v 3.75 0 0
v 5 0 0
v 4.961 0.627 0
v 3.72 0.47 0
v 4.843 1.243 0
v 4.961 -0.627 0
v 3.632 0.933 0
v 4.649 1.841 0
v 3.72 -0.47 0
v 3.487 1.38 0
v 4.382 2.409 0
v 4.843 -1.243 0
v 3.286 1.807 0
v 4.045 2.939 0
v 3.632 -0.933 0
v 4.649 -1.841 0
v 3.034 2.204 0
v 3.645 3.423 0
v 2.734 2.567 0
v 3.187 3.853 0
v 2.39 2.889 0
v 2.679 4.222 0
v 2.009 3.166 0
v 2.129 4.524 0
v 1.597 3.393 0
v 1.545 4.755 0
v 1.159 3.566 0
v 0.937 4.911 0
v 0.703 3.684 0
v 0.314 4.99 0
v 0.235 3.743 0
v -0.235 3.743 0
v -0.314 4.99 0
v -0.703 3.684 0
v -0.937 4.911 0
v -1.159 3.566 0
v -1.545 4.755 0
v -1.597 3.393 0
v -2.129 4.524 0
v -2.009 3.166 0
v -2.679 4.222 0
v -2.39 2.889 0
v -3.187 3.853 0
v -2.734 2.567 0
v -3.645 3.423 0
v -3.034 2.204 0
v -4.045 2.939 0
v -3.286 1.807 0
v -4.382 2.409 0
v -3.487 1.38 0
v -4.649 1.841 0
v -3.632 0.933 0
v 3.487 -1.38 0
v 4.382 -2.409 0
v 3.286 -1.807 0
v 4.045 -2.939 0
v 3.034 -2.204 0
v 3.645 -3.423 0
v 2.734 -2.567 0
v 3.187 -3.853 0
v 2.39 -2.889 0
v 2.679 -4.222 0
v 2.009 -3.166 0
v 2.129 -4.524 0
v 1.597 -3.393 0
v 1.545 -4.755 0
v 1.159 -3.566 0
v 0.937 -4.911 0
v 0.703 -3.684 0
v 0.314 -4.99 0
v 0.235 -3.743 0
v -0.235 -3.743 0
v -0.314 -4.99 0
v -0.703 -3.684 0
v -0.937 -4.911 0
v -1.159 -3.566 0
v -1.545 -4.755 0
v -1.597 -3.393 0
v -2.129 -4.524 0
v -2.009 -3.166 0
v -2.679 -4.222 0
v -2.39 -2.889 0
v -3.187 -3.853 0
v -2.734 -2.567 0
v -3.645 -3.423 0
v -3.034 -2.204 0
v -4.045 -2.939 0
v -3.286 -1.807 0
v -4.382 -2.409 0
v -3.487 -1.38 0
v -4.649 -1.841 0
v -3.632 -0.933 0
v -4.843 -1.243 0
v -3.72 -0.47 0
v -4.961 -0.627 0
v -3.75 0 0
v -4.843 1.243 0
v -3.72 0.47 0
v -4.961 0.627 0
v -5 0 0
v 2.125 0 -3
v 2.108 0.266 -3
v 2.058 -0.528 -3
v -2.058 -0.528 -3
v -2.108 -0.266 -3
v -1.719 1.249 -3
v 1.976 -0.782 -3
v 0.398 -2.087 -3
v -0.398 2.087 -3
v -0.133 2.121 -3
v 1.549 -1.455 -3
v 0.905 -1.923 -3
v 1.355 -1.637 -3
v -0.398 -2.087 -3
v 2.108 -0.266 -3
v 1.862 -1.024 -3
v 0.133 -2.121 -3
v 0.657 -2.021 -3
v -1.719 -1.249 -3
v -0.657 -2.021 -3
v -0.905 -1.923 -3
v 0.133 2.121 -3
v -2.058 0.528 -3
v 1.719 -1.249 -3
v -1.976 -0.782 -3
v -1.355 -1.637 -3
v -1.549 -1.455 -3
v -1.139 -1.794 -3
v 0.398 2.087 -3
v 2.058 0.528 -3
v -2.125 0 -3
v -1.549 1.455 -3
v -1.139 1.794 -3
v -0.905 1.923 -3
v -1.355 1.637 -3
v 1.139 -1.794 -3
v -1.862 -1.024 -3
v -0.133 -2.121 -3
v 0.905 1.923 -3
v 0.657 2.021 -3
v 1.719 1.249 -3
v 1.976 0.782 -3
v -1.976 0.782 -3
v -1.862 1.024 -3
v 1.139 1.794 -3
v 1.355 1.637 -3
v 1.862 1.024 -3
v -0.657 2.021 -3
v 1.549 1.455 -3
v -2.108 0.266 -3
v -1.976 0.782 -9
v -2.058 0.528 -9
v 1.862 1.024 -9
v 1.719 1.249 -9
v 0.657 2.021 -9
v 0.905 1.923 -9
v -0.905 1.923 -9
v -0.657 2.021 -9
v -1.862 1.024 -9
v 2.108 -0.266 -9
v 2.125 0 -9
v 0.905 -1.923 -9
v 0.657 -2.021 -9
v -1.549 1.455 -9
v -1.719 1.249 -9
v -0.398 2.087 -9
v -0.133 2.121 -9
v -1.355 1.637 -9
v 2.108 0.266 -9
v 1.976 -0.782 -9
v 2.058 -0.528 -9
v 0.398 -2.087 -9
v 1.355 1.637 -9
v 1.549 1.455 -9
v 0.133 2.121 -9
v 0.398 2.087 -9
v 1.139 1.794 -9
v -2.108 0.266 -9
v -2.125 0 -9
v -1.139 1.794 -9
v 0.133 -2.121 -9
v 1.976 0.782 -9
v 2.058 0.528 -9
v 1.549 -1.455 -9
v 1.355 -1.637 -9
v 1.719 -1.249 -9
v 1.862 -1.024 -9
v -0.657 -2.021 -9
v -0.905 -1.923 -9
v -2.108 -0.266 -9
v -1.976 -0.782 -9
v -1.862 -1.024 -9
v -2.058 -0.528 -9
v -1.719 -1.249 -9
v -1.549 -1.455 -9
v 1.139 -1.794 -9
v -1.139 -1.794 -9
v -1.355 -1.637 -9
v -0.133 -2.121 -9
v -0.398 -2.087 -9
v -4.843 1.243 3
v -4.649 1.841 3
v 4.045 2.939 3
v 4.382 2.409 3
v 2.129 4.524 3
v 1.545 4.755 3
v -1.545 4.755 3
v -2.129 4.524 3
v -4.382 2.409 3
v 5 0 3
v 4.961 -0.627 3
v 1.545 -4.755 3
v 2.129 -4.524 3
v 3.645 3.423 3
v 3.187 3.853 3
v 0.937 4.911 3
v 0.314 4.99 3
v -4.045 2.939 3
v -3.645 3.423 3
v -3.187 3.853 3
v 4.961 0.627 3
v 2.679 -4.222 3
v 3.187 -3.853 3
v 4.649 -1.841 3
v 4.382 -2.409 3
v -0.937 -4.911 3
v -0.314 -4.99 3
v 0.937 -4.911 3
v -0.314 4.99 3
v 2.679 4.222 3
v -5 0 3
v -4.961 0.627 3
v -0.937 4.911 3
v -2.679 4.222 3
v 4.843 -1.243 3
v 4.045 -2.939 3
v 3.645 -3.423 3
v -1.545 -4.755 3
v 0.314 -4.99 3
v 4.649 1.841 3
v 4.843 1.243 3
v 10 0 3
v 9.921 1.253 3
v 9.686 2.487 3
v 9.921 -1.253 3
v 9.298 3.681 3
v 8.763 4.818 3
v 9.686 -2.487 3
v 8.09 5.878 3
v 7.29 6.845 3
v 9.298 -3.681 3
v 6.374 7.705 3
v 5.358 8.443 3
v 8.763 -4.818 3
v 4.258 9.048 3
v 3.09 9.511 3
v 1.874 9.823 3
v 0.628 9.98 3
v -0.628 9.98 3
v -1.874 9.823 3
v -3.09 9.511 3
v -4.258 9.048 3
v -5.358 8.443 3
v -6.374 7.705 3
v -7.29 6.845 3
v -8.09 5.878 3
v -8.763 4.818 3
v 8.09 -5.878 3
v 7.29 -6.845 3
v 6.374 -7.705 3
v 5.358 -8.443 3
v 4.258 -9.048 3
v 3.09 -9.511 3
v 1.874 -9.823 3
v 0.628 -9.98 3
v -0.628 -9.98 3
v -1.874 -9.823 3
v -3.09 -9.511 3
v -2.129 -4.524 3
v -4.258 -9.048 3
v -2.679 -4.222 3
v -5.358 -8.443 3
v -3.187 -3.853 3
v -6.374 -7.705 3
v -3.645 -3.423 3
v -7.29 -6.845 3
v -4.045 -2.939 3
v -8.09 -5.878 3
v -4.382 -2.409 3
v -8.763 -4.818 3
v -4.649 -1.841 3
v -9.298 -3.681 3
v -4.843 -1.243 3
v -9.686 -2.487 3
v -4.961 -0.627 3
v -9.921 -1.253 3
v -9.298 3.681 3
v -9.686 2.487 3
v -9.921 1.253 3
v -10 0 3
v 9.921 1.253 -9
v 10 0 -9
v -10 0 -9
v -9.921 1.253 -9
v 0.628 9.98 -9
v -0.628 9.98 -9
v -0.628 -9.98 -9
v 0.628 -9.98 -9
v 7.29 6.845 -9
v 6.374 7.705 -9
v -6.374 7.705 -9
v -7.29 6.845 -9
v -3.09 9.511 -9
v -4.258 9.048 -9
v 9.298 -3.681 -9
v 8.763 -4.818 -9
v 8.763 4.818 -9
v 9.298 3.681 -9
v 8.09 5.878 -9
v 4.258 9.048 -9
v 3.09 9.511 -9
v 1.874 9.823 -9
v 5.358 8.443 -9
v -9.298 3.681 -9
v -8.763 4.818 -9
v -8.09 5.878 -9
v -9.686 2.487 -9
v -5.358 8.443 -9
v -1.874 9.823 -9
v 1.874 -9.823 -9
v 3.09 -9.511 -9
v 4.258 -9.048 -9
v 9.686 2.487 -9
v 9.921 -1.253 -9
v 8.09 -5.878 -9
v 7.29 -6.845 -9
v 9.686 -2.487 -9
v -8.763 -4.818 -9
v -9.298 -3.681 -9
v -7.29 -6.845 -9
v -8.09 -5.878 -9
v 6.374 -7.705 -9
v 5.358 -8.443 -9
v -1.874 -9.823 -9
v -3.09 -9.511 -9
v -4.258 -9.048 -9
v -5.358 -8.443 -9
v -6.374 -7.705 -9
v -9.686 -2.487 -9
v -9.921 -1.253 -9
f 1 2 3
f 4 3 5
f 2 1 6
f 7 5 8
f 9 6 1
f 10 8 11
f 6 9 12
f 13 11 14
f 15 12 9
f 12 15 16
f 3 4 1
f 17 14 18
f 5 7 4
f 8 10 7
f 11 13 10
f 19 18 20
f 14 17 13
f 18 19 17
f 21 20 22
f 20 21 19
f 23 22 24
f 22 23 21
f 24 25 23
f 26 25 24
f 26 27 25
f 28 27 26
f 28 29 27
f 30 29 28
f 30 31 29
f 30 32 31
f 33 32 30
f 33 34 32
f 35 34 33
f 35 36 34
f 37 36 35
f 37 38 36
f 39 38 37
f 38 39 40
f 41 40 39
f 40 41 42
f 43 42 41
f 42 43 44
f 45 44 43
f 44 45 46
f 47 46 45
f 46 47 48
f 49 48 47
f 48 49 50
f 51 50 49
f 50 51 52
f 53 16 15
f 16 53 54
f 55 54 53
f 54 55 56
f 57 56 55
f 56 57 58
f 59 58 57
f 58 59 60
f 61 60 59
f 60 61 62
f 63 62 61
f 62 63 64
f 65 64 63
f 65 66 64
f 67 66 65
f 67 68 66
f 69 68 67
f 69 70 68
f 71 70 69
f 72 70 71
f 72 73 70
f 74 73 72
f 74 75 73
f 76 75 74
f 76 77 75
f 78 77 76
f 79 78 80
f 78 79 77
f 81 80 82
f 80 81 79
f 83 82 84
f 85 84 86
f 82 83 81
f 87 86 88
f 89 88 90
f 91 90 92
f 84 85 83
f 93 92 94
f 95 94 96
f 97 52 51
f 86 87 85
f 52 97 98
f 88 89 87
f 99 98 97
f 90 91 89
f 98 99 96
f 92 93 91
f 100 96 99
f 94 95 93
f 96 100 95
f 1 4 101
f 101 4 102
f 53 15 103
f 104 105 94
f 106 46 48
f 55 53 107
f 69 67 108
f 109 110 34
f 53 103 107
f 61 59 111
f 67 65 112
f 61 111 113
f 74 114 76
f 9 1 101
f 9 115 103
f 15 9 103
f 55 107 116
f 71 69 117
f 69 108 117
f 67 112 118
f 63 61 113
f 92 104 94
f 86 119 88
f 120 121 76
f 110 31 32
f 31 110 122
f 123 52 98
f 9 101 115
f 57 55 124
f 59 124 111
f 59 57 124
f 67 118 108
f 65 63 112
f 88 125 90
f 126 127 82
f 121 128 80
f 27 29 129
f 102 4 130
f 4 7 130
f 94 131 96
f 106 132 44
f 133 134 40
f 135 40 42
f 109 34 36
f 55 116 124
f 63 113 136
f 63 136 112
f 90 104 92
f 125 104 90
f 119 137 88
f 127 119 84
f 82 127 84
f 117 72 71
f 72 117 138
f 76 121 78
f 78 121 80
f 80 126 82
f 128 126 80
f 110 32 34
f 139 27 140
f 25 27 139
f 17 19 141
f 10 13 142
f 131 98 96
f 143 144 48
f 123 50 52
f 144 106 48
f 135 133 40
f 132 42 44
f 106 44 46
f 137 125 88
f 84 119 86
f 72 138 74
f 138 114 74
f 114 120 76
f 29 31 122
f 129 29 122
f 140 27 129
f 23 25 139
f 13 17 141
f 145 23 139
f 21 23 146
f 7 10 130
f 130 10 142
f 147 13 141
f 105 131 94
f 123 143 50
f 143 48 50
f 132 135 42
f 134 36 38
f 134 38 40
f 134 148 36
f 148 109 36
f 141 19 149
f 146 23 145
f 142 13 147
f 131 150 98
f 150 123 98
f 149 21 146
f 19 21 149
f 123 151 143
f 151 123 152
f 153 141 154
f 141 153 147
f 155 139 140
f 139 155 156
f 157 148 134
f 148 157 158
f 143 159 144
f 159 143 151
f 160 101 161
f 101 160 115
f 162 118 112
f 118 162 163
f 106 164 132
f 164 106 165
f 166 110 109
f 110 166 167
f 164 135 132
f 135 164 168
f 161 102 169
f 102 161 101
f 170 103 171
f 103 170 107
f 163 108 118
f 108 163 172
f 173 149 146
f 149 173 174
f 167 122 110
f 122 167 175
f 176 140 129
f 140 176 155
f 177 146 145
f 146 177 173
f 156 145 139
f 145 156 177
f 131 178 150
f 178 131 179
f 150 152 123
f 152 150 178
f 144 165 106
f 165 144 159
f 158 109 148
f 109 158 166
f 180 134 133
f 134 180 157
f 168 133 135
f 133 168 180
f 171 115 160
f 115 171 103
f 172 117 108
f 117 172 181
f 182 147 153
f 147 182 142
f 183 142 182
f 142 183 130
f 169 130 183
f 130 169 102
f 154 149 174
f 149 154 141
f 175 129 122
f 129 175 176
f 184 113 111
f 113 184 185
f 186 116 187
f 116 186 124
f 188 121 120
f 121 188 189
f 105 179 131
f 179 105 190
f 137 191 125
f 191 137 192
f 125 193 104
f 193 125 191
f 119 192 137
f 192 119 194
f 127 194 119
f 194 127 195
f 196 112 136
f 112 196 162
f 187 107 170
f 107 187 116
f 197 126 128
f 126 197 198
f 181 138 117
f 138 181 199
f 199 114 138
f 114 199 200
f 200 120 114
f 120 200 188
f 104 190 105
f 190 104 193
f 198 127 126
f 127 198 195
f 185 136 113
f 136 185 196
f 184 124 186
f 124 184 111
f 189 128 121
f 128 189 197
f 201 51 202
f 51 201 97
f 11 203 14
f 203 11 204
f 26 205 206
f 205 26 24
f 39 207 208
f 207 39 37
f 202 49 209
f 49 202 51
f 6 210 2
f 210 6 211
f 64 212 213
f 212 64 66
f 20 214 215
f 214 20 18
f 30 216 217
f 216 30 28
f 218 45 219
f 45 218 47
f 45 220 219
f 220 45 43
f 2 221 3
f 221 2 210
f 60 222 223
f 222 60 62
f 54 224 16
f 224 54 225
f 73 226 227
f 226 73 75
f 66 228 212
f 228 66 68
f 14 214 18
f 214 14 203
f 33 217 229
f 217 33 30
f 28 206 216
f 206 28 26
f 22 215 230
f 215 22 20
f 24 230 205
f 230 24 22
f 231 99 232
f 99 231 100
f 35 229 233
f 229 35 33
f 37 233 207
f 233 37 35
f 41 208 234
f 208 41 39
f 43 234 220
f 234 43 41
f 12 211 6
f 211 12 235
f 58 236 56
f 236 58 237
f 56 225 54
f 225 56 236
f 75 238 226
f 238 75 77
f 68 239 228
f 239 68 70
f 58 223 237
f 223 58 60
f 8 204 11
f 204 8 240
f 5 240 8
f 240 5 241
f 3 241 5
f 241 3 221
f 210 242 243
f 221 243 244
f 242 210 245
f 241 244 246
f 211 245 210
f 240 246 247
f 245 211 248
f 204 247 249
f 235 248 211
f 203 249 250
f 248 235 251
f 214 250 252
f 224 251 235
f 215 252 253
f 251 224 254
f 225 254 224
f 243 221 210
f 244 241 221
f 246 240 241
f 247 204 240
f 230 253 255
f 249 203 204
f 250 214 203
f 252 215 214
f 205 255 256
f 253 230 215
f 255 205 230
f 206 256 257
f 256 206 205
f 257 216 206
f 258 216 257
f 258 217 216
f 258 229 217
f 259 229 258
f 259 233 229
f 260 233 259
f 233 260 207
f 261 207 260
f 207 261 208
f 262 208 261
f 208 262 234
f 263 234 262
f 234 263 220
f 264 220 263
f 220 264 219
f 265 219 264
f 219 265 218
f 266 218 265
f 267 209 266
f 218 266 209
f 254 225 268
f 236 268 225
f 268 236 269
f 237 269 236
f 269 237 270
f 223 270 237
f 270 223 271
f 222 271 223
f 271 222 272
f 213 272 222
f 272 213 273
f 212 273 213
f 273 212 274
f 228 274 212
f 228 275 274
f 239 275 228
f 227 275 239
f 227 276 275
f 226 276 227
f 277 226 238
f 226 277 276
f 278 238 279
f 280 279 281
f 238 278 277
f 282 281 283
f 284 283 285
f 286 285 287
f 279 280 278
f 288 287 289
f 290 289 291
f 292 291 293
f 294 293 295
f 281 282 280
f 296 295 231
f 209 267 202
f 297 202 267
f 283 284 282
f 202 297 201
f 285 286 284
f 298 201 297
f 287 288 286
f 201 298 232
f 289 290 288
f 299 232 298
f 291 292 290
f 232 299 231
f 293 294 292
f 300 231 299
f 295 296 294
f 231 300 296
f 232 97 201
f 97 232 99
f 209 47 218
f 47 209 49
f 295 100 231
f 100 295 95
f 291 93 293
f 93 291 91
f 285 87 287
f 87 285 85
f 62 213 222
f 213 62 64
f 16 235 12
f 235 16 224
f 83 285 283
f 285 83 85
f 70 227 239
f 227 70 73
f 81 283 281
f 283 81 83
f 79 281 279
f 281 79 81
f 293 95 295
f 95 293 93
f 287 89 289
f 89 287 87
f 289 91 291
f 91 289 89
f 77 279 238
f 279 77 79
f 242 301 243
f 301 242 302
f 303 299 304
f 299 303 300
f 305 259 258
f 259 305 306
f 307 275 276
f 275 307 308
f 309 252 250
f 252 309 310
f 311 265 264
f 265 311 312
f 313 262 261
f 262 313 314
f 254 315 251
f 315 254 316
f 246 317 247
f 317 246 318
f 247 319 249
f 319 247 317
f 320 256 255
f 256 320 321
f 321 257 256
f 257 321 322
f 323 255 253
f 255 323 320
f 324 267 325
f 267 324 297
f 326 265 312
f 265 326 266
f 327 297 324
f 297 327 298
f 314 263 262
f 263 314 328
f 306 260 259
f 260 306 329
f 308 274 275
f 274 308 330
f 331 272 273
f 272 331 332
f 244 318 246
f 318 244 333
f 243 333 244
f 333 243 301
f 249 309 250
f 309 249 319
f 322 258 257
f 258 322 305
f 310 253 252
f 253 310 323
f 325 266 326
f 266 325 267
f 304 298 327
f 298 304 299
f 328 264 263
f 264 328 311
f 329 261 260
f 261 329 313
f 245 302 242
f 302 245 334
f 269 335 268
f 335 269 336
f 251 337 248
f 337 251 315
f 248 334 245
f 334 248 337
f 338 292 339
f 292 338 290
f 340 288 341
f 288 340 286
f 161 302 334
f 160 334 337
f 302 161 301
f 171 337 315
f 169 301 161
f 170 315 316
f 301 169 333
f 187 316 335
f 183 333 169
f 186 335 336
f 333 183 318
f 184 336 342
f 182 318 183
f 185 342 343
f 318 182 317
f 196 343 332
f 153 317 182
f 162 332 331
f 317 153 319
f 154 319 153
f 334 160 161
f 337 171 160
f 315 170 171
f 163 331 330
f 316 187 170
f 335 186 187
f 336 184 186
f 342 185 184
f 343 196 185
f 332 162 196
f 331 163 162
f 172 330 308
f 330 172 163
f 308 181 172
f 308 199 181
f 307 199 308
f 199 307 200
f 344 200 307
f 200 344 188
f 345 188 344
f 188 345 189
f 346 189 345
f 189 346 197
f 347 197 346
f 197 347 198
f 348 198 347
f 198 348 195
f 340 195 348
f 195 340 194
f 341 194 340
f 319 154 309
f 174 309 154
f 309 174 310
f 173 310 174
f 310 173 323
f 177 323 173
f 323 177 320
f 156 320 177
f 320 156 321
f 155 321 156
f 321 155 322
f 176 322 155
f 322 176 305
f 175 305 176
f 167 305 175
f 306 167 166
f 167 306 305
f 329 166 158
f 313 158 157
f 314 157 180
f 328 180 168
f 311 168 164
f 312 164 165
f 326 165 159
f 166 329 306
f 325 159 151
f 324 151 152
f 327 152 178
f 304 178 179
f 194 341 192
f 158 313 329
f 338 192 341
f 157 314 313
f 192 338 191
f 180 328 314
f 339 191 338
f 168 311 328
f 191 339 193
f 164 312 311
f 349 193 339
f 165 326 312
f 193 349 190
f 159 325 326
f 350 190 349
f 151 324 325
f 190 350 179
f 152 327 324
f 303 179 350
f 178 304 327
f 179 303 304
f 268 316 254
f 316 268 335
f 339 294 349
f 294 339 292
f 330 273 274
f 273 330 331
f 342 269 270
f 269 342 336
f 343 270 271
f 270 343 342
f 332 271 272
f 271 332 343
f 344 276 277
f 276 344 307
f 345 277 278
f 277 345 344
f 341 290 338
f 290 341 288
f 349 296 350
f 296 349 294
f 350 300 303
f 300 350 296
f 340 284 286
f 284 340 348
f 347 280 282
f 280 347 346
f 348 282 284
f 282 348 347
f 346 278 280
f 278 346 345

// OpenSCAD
$fn = 50;

difference() {
	union() {
		translate(v = [0, 0, -9.0]) {
			cylinder(h = 12, r = 10.0);
		}
	}
	union() {
		translate(v = [0, 0, 0]) {
			rotate(a = [0, 0, 0]) {
				difference() {
					union() {
						translate(v = [0, 0, -12.0]) {
							cylinder(h = 12, r = 2.0);
						}
						translate(v = [0, 0, -3]) {
							cylinder(h = 3, r1 = 2.125, r2 = 3.75);
						}
						translate(v = [0, 0, -12.0]) {
							cylinder(h = 12, r = 2.125);
						}
						translate(v = [0, 0, -12.0]) {
							cylinder(h = 12, r = 2.0);
						}
					}
					union();
				}
			}
		}
		#cylinder(h = 3, r = 5.0);
	}
}
